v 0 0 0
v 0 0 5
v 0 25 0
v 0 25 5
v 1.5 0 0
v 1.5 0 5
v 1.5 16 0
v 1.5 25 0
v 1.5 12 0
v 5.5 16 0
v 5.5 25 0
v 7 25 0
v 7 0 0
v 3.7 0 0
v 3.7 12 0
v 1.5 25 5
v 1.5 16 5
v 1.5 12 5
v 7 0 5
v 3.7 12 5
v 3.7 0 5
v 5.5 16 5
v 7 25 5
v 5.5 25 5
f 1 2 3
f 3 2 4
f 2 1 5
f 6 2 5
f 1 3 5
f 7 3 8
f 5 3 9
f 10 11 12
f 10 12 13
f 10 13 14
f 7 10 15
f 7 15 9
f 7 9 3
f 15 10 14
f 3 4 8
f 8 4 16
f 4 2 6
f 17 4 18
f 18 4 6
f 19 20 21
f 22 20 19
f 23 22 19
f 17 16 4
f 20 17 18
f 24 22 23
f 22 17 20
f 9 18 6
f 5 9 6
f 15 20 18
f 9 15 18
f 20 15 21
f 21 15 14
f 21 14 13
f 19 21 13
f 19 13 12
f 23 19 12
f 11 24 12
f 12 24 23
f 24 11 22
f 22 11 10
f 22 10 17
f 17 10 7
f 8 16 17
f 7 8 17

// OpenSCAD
difference()
{
translate([0,0,0])cube([7,25,5]);
translate([1.5,-1,-1])cube([2.2,13,7]);
#translate([1.5,16,-1])cube([4,10,7]);
}
